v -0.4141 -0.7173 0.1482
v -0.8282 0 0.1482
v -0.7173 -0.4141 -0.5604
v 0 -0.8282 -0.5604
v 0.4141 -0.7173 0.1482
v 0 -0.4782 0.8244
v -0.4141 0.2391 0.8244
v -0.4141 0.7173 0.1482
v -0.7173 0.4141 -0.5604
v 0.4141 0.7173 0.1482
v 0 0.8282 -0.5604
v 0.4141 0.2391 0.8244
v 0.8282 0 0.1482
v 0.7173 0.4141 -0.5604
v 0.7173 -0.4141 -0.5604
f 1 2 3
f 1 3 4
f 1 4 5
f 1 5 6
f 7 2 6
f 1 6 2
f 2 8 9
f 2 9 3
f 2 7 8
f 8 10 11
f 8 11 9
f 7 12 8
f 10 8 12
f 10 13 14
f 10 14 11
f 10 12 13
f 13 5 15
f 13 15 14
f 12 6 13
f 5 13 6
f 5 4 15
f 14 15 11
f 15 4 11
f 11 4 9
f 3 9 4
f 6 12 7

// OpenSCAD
polyhedron( points = [[-0.414105469692857, -0.717251713375886, 0.148200524905885], [-0.828210939454363, 4.23768517462667e-11, 0.148200524905885], [-0.414105469886069, 0.717251713423454, 0.148200524905885], [0.414105469465197, 0.717251713423454, 0.148200524905885], [0.828210939291109, 4.23785068442044e-11, 0.148200524905885], [0.414105469787219, -0.717251713375886, 0.148200524905885], [6.86489109349319e-11, -0.828210939535076, -0.560416487536896], [-0.717251713200879, -0.414105469730634, -0.560416487536896], [-0.71725171309407, 0.41410546972893, -0.56041648756121], [1.43016415119203e-10, 0.828210939502966, -0.560416487510758], [0.71725171328284, 0.41410546956212, -0.560416487526585], [0.717251713384818, -0.414105469894794, -0.560416487489221], [6.86489109349319e-11, -0.478167808827143, 0.824431925239755], [0.414105469492415, 0.239083904477136, 0.824431925239755], [-0.414105469655673, 0.239083904536602, 0.824431925246745]], faces = [[0, 1, 7], [0, 7, 6], [0, 6, 5], [0, 5, 12], [0, 12, 14, 1], [1, 2, 8], [1, 8, 7], [1, 14, 2], [2, 3, 9], [2, 9, 8], [2, 14, 13, 3], [3, 4, 10], [3, 10, 9], [3, 13, 4], [4, 5, 11], [4, 11, 10], [4, 13, 12, 5], [5, 6, 11], [6, 7, 8, 9, 10, 11], [12, 13, 14]]);
